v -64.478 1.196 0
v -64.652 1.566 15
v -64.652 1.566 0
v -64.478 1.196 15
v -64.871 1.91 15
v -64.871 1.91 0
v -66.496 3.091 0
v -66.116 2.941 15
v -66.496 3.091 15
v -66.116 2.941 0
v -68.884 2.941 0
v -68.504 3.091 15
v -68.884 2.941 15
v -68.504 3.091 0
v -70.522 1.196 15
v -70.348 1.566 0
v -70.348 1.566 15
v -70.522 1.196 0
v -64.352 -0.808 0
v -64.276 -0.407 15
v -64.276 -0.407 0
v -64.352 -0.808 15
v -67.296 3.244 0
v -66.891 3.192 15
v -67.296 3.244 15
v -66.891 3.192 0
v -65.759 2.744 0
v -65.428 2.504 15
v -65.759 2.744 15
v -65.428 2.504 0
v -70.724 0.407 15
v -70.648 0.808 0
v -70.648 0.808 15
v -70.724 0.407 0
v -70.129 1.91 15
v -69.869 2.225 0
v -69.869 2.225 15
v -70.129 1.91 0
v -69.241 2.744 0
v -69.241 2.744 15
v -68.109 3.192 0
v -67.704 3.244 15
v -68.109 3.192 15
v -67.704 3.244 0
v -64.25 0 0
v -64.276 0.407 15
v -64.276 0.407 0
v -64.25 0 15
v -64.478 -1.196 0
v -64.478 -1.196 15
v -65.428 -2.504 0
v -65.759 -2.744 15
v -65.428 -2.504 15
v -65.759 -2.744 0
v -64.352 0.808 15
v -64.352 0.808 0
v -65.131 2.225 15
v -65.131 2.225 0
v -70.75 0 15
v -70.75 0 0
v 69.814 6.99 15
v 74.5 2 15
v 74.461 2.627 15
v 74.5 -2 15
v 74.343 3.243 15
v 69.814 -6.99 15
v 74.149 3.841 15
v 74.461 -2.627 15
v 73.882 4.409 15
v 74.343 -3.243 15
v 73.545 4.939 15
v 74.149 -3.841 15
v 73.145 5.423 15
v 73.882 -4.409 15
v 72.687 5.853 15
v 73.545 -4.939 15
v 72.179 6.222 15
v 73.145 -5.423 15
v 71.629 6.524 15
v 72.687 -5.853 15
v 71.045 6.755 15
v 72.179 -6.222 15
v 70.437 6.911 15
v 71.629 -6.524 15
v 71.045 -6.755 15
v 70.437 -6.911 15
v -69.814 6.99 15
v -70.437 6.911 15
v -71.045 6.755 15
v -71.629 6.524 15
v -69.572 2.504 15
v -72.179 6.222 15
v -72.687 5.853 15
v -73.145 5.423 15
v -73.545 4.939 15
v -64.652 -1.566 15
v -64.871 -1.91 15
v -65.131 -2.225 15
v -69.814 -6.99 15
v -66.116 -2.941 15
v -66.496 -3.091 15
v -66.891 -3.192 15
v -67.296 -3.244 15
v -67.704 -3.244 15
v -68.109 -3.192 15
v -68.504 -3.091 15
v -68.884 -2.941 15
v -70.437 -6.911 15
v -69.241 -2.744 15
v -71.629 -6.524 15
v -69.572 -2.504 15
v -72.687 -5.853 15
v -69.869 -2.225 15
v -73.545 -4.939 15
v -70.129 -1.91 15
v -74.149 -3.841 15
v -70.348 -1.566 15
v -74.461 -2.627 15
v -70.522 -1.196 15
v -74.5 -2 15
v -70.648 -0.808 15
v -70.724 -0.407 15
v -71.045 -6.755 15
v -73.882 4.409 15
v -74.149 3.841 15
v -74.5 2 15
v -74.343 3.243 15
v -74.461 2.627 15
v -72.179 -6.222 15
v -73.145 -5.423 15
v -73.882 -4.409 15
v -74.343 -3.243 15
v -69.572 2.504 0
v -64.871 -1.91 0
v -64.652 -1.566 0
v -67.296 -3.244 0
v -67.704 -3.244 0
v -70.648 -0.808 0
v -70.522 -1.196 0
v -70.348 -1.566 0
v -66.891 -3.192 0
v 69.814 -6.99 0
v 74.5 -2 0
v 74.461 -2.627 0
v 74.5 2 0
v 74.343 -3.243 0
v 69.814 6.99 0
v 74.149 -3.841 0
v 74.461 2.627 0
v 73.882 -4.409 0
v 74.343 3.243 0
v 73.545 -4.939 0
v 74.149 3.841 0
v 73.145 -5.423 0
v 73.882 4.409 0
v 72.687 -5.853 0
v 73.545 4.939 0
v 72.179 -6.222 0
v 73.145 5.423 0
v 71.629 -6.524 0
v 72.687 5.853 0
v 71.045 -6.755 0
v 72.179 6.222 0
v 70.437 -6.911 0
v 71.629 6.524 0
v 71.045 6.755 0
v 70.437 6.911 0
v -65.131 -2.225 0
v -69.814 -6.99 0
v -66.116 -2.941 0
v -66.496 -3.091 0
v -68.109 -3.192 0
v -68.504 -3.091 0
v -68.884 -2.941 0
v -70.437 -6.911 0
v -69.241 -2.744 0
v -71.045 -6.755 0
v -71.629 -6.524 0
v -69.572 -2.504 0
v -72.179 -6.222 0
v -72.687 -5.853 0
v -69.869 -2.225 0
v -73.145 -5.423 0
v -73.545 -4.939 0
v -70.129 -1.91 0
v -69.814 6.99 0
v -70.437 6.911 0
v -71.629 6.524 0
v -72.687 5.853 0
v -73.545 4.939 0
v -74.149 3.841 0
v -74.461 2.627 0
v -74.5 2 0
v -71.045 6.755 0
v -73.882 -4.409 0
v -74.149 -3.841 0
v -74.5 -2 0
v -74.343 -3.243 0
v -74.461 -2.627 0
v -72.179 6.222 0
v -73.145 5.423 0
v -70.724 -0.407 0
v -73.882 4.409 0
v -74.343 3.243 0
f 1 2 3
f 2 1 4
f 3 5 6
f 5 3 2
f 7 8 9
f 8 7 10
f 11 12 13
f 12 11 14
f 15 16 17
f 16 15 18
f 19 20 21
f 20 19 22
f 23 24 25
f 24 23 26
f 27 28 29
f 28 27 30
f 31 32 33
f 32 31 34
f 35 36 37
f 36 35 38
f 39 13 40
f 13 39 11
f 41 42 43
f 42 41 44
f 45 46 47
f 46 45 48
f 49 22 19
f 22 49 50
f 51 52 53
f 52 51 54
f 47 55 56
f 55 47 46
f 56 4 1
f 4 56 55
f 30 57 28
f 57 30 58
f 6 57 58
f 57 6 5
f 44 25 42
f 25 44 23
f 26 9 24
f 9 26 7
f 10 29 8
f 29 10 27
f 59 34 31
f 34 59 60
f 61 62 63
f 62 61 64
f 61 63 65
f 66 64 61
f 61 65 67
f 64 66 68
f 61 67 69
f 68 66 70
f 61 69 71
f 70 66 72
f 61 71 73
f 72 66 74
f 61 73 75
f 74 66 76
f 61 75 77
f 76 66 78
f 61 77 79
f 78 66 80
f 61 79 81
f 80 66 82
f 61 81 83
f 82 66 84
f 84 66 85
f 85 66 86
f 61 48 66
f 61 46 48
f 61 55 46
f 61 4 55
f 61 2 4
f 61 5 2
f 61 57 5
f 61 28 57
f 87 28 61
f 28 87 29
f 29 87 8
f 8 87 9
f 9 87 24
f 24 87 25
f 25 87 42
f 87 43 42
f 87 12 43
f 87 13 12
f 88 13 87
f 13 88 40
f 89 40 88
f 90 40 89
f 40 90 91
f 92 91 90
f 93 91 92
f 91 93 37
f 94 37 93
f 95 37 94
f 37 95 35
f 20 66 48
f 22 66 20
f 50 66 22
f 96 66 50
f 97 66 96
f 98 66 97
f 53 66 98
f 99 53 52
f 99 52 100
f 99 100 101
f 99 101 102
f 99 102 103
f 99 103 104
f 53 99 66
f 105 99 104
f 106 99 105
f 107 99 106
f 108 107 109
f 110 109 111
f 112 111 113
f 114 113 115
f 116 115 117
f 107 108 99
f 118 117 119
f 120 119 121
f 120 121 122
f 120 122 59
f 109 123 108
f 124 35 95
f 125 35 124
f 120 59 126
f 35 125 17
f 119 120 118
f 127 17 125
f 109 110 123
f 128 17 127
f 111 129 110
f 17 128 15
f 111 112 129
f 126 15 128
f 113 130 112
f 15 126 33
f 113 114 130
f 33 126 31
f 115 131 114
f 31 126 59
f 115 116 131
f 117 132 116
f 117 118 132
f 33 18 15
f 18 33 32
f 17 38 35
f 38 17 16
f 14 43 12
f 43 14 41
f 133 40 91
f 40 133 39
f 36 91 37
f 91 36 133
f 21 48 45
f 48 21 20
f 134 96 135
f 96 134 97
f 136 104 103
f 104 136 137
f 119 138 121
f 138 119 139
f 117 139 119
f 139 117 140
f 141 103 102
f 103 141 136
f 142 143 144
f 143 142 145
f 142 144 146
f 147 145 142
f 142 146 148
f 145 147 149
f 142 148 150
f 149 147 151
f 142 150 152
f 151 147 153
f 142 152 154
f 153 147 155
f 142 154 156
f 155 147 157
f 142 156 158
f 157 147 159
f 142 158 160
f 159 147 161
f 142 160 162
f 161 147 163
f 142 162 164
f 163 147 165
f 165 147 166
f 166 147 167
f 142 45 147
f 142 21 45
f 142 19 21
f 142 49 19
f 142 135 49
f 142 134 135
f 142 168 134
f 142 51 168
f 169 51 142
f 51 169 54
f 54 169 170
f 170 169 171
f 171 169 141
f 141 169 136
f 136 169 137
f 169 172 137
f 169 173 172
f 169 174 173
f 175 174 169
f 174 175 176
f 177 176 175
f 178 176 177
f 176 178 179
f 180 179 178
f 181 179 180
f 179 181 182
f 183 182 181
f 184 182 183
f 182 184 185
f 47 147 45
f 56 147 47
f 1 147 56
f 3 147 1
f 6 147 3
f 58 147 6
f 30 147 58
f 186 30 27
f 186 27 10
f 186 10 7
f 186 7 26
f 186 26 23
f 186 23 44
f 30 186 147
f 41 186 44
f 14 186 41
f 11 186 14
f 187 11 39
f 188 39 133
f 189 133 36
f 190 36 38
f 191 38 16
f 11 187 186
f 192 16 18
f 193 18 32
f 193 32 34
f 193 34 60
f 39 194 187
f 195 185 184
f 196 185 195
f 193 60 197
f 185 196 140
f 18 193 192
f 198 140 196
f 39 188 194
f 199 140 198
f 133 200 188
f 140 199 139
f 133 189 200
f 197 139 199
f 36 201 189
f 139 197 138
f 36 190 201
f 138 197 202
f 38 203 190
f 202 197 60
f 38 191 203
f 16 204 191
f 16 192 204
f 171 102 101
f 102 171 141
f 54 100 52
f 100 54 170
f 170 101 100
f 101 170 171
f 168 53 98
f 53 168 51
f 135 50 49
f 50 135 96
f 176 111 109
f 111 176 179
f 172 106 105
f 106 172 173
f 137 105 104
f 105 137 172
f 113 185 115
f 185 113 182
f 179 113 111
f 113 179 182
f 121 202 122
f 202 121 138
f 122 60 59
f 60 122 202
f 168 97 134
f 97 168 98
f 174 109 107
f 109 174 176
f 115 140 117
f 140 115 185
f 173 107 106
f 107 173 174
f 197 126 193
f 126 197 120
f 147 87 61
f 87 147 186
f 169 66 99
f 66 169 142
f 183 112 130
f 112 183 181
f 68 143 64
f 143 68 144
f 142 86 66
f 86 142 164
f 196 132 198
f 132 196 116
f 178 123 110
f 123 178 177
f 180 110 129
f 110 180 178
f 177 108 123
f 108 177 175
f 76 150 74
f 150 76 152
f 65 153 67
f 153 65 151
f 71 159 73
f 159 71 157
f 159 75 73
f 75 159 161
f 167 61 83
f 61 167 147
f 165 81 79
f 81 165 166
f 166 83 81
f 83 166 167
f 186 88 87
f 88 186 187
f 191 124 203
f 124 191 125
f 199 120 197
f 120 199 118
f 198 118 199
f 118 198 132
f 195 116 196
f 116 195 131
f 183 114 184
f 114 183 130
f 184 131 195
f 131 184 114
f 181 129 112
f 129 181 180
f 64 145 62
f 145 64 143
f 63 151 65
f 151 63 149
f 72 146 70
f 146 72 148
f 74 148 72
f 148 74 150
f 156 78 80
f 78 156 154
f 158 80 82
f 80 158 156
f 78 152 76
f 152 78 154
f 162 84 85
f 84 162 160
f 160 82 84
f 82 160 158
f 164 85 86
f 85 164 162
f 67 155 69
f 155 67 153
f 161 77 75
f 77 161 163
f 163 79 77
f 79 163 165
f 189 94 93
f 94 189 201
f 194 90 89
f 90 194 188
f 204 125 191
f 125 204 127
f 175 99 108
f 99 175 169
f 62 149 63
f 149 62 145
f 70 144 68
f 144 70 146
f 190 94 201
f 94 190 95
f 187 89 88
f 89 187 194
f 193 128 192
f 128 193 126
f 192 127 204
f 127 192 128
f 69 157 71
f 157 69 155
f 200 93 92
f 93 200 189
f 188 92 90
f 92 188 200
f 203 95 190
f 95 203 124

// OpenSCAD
$fn = 50;


difference() {
	union() {
		hull() {
			translate(v = [-69.5000000000, 2.0000000000, 0]) {
				cylinder(h = 15, r = 5);
			}
			translate(v = [69.5000000000, 2.0000000000, 0]) {
				cylinder(h = 15, r = 5);
			}
			translate(v = [-69.5000000000, -2.0000000000, 0]) {
				cylinder(h = 15, r = 5);
			}
			translate(v = [69.5000000000, -2.0000000000, 0]) {
				cylinder(h = 15, r = 5);
			}
		}
	}
	union() {
		translate(v = [-67.5000000000, 0.0000000000, 0]) {
			cylinder(h = 15, r = 3.2500000000);
		}
		translate(v = [-67.5000000000, 0.0000000000, 0]) {
			cylinder(h = 15, r = 1.8000000000);
		}
		translate(v = [-67.5000000000, 0.0000000000, 0]) {
			cylinder(h = 15, r = 1.8000000000);
		}
		translate(v = [-67.5000000000, 0.0000000000, 0]) {
			cylinder(h = 15, r = 1.8000000000);
		}
	}
}
